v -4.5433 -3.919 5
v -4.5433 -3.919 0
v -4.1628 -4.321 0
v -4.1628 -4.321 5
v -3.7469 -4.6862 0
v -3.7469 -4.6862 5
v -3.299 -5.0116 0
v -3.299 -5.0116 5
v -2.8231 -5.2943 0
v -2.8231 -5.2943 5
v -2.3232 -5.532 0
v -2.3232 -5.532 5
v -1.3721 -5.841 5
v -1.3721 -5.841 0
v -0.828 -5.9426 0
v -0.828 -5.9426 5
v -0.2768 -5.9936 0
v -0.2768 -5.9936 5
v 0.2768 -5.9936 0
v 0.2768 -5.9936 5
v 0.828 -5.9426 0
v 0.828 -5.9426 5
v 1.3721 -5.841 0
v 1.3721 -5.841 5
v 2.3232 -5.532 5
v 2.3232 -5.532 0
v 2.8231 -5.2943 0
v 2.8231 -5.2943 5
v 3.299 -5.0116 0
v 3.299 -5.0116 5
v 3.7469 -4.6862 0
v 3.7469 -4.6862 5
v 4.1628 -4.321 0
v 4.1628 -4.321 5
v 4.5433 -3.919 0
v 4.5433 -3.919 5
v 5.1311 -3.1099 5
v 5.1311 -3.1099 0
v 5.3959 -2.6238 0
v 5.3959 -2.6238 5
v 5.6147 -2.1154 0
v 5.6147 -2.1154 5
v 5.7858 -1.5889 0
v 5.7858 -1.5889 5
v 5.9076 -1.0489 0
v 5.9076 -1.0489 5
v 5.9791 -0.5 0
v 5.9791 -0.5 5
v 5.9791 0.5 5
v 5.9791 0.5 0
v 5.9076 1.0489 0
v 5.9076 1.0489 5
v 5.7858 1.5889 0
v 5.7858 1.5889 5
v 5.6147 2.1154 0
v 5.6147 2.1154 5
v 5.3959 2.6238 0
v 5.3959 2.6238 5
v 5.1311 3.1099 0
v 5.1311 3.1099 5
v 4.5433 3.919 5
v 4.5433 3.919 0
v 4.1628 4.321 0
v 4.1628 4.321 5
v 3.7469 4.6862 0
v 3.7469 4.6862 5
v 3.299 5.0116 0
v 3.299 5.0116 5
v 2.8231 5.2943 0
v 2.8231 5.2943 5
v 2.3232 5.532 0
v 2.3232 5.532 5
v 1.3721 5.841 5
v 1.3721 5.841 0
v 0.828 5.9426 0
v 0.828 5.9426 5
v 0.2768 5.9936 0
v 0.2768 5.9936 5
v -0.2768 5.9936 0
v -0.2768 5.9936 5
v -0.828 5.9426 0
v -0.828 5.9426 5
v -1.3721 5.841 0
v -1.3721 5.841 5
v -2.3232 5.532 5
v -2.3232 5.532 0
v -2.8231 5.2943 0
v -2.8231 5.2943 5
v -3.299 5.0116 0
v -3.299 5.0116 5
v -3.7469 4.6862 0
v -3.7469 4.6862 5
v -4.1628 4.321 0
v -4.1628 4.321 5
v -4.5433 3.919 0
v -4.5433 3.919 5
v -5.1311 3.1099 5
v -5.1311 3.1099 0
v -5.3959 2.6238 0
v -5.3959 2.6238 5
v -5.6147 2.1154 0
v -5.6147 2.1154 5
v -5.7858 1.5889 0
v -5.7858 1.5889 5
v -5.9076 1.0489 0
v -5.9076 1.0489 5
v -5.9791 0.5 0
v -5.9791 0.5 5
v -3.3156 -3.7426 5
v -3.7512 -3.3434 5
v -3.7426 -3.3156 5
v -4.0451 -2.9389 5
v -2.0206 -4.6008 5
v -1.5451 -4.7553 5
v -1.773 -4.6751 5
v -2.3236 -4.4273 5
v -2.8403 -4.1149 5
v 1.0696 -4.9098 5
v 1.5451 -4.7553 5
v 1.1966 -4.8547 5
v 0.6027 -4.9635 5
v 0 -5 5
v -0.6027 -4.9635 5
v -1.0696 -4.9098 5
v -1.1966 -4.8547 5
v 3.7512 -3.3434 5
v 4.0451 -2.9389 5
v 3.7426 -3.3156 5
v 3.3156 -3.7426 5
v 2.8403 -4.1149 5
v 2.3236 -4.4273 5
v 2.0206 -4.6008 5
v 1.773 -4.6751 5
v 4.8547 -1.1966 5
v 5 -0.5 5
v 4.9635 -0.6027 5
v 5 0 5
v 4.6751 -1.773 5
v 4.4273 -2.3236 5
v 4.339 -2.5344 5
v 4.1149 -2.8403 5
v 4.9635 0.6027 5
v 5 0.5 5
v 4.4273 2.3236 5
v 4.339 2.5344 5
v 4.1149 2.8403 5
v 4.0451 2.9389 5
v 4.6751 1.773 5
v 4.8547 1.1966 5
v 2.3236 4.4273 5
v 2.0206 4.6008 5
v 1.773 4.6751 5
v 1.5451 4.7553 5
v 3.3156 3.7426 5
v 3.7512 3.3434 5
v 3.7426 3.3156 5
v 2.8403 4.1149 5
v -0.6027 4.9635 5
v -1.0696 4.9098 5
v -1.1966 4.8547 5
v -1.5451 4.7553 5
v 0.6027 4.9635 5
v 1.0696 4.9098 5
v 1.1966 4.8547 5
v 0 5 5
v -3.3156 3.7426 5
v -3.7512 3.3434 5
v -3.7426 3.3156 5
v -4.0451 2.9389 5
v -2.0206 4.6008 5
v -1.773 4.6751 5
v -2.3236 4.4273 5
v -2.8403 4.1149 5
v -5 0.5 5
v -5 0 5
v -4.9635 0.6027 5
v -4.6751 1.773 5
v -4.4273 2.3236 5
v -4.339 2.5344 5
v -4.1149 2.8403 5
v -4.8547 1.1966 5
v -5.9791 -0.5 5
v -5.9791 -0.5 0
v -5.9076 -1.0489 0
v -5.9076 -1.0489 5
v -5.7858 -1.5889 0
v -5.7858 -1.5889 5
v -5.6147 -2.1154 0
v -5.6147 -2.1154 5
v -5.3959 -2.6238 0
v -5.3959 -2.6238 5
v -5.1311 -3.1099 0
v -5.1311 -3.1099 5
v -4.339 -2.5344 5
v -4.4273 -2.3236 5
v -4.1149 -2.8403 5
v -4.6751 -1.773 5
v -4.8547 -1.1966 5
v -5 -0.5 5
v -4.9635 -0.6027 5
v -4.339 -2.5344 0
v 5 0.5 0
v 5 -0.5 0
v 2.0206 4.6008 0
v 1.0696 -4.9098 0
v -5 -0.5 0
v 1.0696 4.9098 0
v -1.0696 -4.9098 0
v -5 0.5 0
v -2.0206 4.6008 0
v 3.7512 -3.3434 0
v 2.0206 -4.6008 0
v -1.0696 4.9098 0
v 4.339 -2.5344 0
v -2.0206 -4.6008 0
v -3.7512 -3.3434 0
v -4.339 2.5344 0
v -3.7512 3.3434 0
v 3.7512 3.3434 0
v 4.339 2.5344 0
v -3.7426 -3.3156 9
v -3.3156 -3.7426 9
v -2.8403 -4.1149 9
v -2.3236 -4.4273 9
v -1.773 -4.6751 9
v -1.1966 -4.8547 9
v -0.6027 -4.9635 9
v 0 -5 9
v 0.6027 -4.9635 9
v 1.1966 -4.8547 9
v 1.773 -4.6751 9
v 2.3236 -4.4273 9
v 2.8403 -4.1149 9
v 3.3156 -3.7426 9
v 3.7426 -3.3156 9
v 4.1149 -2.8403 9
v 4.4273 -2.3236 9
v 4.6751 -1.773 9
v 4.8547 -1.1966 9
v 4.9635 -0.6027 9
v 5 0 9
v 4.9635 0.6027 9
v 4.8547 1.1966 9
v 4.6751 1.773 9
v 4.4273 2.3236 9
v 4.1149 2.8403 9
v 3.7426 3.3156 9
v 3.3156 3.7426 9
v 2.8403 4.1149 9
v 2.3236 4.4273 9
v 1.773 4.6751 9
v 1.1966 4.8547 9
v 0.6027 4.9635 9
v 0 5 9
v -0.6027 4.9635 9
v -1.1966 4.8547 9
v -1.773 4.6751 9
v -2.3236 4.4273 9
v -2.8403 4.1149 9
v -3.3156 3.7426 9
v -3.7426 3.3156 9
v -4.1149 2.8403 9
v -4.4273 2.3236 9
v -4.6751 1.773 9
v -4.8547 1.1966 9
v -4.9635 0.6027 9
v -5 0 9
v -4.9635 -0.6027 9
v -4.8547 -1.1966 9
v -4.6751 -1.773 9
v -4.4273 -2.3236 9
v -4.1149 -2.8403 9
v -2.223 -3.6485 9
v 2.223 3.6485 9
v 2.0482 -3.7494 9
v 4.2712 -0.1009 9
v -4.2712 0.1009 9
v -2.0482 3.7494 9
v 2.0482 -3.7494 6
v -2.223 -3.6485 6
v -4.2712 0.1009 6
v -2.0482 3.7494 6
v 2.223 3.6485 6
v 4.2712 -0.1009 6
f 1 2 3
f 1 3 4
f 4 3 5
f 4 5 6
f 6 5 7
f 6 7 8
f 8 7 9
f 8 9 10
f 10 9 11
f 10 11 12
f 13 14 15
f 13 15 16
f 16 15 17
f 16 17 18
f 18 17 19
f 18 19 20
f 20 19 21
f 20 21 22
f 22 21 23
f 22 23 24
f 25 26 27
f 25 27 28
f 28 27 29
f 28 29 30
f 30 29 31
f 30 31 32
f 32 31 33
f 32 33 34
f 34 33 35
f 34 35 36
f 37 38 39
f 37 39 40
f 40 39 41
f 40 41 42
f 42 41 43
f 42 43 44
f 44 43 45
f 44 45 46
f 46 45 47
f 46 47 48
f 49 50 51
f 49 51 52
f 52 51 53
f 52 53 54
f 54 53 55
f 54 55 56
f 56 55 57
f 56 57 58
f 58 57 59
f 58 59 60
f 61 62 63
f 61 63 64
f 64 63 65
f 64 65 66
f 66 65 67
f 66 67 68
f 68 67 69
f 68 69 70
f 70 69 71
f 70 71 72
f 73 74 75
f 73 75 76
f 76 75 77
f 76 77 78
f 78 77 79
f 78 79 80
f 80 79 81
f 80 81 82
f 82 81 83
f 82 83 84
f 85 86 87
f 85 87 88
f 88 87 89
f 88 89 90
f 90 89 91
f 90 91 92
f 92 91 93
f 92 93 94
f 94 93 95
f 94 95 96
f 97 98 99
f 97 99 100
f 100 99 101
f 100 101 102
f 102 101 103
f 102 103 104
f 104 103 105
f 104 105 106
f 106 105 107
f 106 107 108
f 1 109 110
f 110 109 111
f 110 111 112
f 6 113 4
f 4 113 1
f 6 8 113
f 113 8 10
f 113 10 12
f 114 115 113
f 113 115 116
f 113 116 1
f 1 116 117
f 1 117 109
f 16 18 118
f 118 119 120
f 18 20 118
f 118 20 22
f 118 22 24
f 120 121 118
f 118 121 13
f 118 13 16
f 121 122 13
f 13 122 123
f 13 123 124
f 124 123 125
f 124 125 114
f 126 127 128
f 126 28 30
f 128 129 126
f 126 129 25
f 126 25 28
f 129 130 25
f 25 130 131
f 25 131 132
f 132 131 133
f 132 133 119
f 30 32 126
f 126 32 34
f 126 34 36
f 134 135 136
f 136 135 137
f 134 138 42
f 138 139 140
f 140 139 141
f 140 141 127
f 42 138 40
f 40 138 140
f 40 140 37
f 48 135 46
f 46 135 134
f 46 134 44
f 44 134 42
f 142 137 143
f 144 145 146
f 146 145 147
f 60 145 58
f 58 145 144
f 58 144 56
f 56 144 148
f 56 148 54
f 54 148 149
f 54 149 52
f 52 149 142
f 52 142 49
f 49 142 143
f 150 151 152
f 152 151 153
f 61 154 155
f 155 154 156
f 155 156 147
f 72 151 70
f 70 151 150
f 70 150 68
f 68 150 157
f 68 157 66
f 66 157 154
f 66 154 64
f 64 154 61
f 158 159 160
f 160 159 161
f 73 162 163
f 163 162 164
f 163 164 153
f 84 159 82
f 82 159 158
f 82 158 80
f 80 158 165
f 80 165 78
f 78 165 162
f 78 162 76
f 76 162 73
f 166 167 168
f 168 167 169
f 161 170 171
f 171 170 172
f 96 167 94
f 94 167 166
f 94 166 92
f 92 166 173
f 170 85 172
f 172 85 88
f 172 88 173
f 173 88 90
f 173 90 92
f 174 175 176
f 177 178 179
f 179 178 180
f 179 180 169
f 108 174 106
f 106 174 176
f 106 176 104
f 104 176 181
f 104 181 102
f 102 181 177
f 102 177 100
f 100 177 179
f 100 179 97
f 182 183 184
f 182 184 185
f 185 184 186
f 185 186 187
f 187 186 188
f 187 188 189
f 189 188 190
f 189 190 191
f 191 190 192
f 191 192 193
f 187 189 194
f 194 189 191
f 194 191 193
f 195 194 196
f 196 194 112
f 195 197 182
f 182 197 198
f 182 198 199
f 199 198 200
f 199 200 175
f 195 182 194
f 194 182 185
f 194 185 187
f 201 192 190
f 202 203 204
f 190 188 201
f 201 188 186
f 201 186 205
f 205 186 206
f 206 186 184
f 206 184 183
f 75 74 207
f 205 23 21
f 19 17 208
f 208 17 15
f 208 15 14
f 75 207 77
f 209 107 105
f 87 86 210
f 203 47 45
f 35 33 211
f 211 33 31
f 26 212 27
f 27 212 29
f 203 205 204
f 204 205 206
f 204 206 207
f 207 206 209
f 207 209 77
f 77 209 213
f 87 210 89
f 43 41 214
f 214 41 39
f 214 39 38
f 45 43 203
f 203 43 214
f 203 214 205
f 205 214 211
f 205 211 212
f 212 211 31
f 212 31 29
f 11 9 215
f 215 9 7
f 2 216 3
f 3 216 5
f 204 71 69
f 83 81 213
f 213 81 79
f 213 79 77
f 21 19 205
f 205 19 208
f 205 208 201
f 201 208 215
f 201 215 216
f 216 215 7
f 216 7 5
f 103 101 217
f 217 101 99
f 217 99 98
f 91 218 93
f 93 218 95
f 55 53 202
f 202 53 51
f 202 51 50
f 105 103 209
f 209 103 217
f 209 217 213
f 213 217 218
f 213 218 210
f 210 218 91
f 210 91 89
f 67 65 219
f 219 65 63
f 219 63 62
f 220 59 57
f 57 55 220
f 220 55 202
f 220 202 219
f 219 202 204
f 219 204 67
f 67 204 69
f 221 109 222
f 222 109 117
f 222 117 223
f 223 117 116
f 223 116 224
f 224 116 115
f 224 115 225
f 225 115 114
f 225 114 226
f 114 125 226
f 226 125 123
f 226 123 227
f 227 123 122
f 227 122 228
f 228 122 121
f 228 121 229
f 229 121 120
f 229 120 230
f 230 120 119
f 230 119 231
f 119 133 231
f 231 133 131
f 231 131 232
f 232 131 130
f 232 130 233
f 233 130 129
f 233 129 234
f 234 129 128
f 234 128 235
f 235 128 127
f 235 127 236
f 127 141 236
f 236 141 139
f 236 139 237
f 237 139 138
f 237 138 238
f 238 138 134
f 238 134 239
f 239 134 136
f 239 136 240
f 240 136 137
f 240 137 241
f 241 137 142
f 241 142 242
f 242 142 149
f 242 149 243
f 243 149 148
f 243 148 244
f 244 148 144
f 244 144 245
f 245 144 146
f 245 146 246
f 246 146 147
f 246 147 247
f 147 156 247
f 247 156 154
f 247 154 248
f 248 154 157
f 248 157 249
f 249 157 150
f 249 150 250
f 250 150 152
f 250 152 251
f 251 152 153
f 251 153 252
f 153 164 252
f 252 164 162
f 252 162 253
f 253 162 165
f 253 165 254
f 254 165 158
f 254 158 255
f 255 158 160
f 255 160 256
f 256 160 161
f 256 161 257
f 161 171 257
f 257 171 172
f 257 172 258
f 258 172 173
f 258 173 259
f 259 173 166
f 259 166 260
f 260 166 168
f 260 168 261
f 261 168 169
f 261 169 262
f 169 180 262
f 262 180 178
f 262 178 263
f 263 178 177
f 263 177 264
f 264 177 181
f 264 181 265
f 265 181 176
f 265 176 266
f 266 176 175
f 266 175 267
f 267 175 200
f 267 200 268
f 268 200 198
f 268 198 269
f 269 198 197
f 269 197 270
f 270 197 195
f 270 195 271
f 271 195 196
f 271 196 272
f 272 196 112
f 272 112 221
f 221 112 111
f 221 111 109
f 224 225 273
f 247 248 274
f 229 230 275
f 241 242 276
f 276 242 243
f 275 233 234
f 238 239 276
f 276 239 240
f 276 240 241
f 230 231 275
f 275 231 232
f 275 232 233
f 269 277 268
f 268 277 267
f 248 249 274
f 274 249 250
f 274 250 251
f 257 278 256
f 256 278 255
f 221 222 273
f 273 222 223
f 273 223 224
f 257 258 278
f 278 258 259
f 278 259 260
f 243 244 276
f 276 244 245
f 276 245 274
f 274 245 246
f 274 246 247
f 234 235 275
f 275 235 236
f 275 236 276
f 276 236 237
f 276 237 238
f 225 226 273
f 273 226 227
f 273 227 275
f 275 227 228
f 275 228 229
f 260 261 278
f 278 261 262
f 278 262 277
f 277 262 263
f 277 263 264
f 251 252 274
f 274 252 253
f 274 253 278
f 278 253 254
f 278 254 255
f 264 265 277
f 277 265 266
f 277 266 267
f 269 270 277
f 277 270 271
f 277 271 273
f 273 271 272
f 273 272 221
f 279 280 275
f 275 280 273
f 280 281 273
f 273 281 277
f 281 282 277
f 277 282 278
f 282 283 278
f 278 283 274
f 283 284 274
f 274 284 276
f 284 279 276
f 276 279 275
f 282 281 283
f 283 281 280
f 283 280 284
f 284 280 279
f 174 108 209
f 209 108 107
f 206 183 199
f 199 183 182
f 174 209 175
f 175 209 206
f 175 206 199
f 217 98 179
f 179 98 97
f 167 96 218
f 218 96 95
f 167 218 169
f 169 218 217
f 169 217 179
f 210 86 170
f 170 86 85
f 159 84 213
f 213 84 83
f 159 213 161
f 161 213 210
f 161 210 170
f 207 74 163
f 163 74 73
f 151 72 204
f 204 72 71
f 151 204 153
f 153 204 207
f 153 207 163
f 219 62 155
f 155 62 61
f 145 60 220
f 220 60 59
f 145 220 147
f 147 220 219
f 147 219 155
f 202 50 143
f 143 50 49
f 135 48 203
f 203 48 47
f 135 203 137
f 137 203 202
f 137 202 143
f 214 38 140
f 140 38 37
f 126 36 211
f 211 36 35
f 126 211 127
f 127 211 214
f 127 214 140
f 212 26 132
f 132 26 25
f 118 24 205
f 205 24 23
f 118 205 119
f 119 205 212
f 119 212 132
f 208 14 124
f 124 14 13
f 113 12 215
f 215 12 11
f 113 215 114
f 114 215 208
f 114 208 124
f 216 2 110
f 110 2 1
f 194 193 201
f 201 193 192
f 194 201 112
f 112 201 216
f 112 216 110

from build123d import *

# Parameters (mm, degrees)
SKETCH1_R           = 6
BOSS_EXTRUDE1_DEPTH = 5
SKETCH2_R           = 5
BOSS_EXTRUDE2_DEPTH = 4
CUT_EXTRUDE1_DEPTH  = 3
SKETCH4_W           = 2
SKETCH4_H           = 1
CUT_EXTRUDE2_DEPTH  = 10


with BuildPart() as part:
    # Sketch1 → Boss-Extrude1 (new body)
    with BuildSketch(Plane.XY):
        Circle(SKETCH1_R)
    extrude(amount=BOSS_EXTRUDE1_DEPTH)

    # Sketch2 → Boss-Extrude2 (add)
    with BuildSketch(Plane.XY.offset(5)):
        Circle(SKETCH2_R)
    extrude(amount=BOSS_EXTRUDE2_DEPTH)

    # Sketch3 → Cut-Extrude1 (cut)
    with BuildSketch(Plane.XY.offset(9)):
        Polygon((2.048231561, -3.749410728), (4.27120072, -0.1008848), (2.222969159, 3.648525928), (-2.048231561, 3.749410728), (-4.27120072, 0.1008848), (-2.222969159, -3.648525928), align=None)
    extrude(amount=-CUT_EXTRUDE1_DEPTH, mode=Mode.SUBTRACT)

    # Sketch4 → Cut-Extrude2 (cut)
    with BuildSketch(Plane(origin=(0, 0, 0), x_dir=(-1, 0, 0), z_dir=(0, 0, -1))):
        Polygon((5.957011587, -3.709988269), (5.369226334, -4.519005263), (3.751192346, -3.343434759), (4.338977598, -2.534417764), align=None)
        with Locations((6, 0)):
            Rectangle(SKETCH4_W, SKETCH4_H)
        Polygon((2.638647219, -6.502887117), (1.687590702, -6.811904111), (1.069556714, -4.909791079), (2.02061323, -4.600774084), align=None)
        Polygon((-1.687590702, -6.811904111), (-2.638647219, -6.502887117), (-2.02061323, -4.600774084), (-1.069556714, -4.909791079), align=None)
        Polygon((-5.369226334, -4.519005263), (-5.957011587, -3.709988269), (-4.338977598, -2.534417764), (-3.751192346, -3.343434759), align=None)
        with Locations((-6, 0)):
            Rectangle(SKETCH4_W, SKETCH4_H)
        Polygon((-5.957011587, 3.709988269), (-5.369226334, 4.519005263), (-3.751192346, 3.343434759), (-4.338977598, 2.534417764), align=None)
        Polygon((-2.638647219, 6.502887117), (-1.687590702, 6.811904111), (-1.069556714, 4.909791079), (-2.02061323, 4.600774084), align=None)
        Polygon((1.687590702, 6.811904111), (2.638647219, 6.502887117), (2.02061323, 4.600774084), (1.069556714, 4.909791079), align=None)
        Polygon((5.369226334, 4.519005263), (5.957011587, 3.709988269), (4.338977598, 2.534417764), (3.751192346, 3.343434759), align=None)
    extrude(amount=-CUT_EXTRUDE2_DEPTH, mode=Mode.SUBTRACT)


solid = part.part
